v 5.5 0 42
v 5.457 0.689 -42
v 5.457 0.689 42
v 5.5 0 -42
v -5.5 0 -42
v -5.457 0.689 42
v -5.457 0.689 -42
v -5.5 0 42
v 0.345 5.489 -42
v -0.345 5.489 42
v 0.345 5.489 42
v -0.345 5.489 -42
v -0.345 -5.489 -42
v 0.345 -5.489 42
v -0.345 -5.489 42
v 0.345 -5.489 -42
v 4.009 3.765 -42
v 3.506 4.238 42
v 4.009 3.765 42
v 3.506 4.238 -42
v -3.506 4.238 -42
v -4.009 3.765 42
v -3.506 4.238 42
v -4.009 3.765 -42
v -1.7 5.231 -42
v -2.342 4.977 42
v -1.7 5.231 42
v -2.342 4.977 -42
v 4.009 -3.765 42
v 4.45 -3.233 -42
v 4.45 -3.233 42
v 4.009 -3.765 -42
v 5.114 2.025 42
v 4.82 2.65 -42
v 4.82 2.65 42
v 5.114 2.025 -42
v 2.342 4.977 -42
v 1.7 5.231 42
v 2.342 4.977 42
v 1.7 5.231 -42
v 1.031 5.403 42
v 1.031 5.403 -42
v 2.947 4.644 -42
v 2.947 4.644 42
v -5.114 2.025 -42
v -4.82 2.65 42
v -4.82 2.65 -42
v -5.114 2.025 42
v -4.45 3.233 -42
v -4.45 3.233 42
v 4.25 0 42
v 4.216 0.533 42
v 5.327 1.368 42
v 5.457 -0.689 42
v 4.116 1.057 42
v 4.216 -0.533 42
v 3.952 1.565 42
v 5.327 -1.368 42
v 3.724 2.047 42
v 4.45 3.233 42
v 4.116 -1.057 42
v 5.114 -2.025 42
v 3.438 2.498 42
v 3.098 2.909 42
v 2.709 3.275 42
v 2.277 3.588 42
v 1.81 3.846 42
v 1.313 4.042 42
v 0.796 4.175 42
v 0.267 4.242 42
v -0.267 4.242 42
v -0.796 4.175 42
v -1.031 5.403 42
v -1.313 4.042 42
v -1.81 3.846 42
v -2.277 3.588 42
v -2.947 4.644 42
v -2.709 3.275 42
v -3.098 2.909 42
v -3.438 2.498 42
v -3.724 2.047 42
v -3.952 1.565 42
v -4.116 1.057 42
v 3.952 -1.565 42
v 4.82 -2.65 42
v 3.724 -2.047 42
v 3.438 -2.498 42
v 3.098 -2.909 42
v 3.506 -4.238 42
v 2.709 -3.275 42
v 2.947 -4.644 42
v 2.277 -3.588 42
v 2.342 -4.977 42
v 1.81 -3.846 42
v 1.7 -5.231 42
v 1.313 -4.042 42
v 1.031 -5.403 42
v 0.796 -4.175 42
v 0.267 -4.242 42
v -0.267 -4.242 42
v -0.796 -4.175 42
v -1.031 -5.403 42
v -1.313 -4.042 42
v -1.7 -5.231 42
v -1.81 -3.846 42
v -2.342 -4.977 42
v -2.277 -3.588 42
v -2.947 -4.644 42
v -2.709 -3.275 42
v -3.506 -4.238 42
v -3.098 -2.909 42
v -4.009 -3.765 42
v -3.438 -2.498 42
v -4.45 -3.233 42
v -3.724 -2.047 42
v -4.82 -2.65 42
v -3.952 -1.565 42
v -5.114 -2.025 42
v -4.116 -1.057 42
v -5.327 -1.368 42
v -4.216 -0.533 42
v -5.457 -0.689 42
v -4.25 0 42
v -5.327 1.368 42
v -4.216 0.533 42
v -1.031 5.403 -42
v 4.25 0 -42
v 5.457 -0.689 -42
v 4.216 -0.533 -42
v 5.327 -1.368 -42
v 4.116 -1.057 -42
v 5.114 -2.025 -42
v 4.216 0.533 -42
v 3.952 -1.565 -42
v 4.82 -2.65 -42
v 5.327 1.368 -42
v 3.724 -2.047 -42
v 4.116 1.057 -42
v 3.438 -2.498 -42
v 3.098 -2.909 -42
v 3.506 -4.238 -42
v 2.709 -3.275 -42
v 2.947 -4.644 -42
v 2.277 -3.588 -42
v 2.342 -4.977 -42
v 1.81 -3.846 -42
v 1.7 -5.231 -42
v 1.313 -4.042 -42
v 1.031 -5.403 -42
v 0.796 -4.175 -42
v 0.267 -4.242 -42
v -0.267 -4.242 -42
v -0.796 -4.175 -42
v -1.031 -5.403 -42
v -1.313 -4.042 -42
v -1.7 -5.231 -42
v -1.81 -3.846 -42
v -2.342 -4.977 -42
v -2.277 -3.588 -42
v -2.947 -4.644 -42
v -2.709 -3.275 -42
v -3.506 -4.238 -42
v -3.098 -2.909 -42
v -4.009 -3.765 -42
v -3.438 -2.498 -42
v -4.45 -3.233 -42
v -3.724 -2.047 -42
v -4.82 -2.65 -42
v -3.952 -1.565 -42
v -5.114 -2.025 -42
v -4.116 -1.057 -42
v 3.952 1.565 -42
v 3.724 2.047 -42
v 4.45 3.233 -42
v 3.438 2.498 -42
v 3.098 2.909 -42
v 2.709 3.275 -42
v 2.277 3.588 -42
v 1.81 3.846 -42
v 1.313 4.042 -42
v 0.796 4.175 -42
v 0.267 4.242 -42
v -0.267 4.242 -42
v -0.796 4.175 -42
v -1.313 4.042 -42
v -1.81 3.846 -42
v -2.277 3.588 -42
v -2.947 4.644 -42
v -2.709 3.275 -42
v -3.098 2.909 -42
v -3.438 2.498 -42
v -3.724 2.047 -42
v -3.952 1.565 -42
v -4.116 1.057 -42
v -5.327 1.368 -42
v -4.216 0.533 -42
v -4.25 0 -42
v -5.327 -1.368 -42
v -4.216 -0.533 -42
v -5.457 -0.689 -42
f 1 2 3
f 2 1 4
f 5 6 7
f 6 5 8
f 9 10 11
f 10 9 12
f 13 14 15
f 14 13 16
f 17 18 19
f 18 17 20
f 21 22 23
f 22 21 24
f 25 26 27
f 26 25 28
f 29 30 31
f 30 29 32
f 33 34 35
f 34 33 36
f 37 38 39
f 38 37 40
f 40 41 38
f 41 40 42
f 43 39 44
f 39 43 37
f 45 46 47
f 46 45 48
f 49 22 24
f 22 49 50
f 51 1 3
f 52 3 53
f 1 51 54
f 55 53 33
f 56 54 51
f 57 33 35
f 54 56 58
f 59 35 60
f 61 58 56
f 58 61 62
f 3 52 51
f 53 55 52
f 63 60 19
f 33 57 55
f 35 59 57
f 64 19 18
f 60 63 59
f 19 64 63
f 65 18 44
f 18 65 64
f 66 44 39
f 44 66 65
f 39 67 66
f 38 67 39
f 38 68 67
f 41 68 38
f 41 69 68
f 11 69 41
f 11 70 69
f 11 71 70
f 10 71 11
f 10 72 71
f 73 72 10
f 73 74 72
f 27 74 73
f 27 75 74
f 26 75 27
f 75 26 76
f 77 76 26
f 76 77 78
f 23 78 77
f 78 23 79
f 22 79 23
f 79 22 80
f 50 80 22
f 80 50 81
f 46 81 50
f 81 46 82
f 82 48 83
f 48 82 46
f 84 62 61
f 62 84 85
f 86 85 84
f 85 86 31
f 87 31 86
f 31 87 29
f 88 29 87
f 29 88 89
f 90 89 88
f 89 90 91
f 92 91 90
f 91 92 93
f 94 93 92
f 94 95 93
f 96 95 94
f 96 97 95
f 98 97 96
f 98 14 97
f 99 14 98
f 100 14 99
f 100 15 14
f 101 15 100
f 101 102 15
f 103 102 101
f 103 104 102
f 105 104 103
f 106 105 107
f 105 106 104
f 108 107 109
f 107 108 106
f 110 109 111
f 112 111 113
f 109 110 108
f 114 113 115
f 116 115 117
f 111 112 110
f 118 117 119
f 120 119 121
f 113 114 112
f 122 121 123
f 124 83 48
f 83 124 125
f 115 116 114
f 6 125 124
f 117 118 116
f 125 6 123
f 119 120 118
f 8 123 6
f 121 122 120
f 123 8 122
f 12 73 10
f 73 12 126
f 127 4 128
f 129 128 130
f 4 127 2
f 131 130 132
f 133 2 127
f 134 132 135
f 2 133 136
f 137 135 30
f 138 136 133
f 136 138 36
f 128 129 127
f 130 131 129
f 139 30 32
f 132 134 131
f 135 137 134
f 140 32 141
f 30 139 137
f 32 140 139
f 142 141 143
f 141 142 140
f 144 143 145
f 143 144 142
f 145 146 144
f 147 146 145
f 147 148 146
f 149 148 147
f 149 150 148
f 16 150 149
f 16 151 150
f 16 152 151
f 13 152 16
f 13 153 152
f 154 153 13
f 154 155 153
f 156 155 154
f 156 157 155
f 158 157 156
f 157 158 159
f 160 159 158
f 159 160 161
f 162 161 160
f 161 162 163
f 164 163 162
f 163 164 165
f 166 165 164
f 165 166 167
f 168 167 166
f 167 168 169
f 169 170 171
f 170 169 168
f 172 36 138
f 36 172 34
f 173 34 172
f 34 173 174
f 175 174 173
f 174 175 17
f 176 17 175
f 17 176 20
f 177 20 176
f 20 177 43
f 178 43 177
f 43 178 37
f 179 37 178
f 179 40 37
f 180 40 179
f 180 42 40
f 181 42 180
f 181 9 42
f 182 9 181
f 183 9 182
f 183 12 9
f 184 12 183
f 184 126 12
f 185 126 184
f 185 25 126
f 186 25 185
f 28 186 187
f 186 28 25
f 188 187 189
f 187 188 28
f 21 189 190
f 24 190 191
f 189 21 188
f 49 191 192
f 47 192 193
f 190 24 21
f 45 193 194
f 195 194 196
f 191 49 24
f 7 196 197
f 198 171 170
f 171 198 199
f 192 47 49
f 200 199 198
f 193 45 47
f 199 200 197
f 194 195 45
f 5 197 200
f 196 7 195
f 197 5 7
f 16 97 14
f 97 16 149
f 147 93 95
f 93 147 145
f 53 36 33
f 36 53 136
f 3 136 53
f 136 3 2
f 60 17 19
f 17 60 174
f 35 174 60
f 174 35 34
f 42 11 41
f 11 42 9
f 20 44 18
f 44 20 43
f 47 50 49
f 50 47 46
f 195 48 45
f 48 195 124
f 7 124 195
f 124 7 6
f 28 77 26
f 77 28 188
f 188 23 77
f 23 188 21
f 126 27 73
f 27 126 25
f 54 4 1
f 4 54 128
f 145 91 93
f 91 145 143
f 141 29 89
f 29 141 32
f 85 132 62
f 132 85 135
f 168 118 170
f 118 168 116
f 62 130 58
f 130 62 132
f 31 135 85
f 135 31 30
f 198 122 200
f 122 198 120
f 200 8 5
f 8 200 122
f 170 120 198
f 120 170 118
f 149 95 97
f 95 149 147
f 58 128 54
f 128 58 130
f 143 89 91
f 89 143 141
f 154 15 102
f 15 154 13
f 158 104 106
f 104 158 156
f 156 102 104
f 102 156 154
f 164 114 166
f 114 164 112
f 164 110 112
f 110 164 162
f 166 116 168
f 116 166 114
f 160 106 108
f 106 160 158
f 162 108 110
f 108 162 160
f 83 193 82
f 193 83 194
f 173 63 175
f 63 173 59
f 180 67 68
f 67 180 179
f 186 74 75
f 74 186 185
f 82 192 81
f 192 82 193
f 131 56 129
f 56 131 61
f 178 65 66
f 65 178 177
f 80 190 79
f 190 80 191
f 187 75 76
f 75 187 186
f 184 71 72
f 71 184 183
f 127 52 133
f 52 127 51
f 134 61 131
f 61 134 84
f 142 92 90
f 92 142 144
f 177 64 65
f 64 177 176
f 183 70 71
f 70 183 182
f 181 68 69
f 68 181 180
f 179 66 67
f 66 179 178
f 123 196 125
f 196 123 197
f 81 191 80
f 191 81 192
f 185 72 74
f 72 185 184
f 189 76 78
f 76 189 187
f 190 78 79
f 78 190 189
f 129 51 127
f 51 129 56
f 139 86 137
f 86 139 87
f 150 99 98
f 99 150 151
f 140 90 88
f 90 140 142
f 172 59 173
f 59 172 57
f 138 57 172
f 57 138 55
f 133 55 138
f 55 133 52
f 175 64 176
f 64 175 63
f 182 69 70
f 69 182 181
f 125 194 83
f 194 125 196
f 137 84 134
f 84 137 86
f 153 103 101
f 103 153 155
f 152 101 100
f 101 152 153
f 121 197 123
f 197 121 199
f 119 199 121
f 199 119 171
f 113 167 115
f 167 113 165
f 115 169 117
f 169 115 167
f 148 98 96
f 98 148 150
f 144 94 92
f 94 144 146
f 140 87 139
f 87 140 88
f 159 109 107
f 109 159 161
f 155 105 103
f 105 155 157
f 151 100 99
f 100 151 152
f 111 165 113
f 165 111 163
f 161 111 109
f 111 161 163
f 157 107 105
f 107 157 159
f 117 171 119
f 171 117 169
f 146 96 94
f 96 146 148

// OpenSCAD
$fn = 50;


difference() {
	union() {
		translate(v = [0, 0, -42.0000000000]) {
			cylinder(h = 84, r = 5.5000000000);
		}
	}
	union() {
		translate(v = [0, 0, -100.0000000000]) {
			cylinder(h = 200, r = 4.2500000000);
		}
	}
}
